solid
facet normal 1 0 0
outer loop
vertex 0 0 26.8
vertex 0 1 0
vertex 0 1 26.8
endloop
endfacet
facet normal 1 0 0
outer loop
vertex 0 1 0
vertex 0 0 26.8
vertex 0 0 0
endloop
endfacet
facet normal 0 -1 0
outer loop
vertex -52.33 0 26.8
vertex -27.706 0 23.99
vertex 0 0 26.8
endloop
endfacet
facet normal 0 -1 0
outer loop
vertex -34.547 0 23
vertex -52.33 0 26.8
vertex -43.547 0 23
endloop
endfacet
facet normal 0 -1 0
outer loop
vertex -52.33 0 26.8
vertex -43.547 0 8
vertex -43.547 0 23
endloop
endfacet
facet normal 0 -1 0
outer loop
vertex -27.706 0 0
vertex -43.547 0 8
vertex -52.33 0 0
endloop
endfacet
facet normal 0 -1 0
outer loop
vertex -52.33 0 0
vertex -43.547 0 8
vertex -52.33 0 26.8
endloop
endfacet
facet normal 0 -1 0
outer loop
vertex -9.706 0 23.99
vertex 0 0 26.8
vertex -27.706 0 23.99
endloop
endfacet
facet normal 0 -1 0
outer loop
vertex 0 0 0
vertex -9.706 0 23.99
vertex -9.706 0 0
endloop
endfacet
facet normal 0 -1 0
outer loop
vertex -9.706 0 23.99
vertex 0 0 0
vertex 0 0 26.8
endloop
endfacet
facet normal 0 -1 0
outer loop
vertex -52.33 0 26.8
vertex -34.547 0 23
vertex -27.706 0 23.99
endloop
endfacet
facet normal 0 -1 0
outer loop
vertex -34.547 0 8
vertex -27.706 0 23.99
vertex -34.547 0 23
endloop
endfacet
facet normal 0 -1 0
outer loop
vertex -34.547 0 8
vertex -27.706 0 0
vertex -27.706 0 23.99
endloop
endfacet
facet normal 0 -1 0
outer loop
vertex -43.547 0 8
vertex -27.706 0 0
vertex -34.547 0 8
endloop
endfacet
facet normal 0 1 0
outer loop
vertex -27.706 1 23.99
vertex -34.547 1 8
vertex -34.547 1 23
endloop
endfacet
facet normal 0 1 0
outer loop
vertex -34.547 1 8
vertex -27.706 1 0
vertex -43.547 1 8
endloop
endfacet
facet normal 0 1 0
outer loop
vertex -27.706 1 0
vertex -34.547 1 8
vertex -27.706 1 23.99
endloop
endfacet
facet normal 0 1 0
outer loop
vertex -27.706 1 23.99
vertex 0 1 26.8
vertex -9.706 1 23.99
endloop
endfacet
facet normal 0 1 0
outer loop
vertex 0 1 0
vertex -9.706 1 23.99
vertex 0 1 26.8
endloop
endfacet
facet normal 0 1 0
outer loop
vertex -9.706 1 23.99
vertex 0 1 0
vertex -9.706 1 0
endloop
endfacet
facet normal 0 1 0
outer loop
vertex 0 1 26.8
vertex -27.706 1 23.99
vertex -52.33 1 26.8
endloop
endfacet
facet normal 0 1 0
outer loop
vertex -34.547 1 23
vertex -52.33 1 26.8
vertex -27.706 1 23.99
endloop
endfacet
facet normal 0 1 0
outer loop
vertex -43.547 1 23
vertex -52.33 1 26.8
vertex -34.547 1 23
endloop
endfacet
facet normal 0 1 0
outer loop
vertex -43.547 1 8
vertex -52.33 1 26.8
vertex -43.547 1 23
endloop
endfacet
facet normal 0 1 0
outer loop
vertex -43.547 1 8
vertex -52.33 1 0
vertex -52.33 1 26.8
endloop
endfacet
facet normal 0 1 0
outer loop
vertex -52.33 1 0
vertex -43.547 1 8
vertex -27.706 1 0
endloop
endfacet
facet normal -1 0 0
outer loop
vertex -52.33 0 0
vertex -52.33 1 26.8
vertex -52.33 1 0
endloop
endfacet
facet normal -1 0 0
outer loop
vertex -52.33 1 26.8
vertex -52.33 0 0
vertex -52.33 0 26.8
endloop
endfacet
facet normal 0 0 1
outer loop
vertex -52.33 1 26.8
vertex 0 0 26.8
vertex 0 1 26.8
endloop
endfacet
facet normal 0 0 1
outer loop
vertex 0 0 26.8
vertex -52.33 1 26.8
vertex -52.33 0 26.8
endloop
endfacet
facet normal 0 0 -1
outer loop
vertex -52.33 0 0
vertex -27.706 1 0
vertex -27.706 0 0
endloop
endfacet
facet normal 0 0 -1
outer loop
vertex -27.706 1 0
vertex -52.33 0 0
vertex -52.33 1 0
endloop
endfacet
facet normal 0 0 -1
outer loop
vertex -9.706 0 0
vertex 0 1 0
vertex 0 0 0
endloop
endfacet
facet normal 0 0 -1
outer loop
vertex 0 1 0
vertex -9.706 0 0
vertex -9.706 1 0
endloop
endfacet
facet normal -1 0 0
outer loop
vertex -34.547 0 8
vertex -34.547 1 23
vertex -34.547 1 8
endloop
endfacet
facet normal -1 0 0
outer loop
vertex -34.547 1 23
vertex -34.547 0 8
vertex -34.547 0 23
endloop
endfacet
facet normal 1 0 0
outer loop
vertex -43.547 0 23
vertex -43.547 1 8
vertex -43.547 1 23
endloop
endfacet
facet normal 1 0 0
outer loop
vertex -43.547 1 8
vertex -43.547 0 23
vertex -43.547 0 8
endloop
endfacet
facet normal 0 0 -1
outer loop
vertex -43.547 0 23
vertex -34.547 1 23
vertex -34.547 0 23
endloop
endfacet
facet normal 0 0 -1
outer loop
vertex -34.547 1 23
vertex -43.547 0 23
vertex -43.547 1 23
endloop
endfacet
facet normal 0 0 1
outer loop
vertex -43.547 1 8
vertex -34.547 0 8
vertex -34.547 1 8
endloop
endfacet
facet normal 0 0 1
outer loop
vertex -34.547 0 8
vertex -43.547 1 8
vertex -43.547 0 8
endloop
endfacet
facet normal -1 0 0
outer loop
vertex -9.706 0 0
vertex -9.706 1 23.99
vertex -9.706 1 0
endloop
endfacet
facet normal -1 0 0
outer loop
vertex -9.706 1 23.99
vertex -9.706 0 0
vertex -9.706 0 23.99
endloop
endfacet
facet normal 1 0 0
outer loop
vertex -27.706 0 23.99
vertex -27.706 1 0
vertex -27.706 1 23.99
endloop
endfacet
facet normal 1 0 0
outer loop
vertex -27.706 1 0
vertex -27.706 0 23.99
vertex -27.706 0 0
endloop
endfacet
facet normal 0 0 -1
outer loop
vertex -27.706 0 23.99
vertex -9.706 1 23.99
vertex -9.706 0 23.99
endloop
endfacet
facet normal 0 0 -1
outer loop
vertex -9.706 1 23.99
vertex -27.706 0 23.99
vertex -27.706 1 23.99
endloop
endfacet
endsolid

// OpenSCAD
$fn = 180;

wall_width = 52.33;
wall_height = 26.8;
wall_thickness = 1.;

window_w = 9.;
window_h = 15.;
window_y = 8.; // distance from bottom to window
window_x = 8.783;

door_w = 18;
door_h = 24;

module wall_with_openings() {
    difference() {
        // main wall
        cube([wall_width, wall_height, wall_thickness]);

        // window cutout
        translate([window_x, window_y, -1]) {
            cube([window_w, window_h, wall_thickness + 2]);
        }

        // door cutout
        translate([24.624, -0.01, -1]) {
            cube([door_w, door_h, wall_thickness + 2]);
        }
    }
}

// Rotate to stand upright
scale([1, -1, 1]) {
    translate([-wall_width, 0, 0]) {
        rotate([90, 0, 0]) {
            wall_with_openings();
        }
    }
}
